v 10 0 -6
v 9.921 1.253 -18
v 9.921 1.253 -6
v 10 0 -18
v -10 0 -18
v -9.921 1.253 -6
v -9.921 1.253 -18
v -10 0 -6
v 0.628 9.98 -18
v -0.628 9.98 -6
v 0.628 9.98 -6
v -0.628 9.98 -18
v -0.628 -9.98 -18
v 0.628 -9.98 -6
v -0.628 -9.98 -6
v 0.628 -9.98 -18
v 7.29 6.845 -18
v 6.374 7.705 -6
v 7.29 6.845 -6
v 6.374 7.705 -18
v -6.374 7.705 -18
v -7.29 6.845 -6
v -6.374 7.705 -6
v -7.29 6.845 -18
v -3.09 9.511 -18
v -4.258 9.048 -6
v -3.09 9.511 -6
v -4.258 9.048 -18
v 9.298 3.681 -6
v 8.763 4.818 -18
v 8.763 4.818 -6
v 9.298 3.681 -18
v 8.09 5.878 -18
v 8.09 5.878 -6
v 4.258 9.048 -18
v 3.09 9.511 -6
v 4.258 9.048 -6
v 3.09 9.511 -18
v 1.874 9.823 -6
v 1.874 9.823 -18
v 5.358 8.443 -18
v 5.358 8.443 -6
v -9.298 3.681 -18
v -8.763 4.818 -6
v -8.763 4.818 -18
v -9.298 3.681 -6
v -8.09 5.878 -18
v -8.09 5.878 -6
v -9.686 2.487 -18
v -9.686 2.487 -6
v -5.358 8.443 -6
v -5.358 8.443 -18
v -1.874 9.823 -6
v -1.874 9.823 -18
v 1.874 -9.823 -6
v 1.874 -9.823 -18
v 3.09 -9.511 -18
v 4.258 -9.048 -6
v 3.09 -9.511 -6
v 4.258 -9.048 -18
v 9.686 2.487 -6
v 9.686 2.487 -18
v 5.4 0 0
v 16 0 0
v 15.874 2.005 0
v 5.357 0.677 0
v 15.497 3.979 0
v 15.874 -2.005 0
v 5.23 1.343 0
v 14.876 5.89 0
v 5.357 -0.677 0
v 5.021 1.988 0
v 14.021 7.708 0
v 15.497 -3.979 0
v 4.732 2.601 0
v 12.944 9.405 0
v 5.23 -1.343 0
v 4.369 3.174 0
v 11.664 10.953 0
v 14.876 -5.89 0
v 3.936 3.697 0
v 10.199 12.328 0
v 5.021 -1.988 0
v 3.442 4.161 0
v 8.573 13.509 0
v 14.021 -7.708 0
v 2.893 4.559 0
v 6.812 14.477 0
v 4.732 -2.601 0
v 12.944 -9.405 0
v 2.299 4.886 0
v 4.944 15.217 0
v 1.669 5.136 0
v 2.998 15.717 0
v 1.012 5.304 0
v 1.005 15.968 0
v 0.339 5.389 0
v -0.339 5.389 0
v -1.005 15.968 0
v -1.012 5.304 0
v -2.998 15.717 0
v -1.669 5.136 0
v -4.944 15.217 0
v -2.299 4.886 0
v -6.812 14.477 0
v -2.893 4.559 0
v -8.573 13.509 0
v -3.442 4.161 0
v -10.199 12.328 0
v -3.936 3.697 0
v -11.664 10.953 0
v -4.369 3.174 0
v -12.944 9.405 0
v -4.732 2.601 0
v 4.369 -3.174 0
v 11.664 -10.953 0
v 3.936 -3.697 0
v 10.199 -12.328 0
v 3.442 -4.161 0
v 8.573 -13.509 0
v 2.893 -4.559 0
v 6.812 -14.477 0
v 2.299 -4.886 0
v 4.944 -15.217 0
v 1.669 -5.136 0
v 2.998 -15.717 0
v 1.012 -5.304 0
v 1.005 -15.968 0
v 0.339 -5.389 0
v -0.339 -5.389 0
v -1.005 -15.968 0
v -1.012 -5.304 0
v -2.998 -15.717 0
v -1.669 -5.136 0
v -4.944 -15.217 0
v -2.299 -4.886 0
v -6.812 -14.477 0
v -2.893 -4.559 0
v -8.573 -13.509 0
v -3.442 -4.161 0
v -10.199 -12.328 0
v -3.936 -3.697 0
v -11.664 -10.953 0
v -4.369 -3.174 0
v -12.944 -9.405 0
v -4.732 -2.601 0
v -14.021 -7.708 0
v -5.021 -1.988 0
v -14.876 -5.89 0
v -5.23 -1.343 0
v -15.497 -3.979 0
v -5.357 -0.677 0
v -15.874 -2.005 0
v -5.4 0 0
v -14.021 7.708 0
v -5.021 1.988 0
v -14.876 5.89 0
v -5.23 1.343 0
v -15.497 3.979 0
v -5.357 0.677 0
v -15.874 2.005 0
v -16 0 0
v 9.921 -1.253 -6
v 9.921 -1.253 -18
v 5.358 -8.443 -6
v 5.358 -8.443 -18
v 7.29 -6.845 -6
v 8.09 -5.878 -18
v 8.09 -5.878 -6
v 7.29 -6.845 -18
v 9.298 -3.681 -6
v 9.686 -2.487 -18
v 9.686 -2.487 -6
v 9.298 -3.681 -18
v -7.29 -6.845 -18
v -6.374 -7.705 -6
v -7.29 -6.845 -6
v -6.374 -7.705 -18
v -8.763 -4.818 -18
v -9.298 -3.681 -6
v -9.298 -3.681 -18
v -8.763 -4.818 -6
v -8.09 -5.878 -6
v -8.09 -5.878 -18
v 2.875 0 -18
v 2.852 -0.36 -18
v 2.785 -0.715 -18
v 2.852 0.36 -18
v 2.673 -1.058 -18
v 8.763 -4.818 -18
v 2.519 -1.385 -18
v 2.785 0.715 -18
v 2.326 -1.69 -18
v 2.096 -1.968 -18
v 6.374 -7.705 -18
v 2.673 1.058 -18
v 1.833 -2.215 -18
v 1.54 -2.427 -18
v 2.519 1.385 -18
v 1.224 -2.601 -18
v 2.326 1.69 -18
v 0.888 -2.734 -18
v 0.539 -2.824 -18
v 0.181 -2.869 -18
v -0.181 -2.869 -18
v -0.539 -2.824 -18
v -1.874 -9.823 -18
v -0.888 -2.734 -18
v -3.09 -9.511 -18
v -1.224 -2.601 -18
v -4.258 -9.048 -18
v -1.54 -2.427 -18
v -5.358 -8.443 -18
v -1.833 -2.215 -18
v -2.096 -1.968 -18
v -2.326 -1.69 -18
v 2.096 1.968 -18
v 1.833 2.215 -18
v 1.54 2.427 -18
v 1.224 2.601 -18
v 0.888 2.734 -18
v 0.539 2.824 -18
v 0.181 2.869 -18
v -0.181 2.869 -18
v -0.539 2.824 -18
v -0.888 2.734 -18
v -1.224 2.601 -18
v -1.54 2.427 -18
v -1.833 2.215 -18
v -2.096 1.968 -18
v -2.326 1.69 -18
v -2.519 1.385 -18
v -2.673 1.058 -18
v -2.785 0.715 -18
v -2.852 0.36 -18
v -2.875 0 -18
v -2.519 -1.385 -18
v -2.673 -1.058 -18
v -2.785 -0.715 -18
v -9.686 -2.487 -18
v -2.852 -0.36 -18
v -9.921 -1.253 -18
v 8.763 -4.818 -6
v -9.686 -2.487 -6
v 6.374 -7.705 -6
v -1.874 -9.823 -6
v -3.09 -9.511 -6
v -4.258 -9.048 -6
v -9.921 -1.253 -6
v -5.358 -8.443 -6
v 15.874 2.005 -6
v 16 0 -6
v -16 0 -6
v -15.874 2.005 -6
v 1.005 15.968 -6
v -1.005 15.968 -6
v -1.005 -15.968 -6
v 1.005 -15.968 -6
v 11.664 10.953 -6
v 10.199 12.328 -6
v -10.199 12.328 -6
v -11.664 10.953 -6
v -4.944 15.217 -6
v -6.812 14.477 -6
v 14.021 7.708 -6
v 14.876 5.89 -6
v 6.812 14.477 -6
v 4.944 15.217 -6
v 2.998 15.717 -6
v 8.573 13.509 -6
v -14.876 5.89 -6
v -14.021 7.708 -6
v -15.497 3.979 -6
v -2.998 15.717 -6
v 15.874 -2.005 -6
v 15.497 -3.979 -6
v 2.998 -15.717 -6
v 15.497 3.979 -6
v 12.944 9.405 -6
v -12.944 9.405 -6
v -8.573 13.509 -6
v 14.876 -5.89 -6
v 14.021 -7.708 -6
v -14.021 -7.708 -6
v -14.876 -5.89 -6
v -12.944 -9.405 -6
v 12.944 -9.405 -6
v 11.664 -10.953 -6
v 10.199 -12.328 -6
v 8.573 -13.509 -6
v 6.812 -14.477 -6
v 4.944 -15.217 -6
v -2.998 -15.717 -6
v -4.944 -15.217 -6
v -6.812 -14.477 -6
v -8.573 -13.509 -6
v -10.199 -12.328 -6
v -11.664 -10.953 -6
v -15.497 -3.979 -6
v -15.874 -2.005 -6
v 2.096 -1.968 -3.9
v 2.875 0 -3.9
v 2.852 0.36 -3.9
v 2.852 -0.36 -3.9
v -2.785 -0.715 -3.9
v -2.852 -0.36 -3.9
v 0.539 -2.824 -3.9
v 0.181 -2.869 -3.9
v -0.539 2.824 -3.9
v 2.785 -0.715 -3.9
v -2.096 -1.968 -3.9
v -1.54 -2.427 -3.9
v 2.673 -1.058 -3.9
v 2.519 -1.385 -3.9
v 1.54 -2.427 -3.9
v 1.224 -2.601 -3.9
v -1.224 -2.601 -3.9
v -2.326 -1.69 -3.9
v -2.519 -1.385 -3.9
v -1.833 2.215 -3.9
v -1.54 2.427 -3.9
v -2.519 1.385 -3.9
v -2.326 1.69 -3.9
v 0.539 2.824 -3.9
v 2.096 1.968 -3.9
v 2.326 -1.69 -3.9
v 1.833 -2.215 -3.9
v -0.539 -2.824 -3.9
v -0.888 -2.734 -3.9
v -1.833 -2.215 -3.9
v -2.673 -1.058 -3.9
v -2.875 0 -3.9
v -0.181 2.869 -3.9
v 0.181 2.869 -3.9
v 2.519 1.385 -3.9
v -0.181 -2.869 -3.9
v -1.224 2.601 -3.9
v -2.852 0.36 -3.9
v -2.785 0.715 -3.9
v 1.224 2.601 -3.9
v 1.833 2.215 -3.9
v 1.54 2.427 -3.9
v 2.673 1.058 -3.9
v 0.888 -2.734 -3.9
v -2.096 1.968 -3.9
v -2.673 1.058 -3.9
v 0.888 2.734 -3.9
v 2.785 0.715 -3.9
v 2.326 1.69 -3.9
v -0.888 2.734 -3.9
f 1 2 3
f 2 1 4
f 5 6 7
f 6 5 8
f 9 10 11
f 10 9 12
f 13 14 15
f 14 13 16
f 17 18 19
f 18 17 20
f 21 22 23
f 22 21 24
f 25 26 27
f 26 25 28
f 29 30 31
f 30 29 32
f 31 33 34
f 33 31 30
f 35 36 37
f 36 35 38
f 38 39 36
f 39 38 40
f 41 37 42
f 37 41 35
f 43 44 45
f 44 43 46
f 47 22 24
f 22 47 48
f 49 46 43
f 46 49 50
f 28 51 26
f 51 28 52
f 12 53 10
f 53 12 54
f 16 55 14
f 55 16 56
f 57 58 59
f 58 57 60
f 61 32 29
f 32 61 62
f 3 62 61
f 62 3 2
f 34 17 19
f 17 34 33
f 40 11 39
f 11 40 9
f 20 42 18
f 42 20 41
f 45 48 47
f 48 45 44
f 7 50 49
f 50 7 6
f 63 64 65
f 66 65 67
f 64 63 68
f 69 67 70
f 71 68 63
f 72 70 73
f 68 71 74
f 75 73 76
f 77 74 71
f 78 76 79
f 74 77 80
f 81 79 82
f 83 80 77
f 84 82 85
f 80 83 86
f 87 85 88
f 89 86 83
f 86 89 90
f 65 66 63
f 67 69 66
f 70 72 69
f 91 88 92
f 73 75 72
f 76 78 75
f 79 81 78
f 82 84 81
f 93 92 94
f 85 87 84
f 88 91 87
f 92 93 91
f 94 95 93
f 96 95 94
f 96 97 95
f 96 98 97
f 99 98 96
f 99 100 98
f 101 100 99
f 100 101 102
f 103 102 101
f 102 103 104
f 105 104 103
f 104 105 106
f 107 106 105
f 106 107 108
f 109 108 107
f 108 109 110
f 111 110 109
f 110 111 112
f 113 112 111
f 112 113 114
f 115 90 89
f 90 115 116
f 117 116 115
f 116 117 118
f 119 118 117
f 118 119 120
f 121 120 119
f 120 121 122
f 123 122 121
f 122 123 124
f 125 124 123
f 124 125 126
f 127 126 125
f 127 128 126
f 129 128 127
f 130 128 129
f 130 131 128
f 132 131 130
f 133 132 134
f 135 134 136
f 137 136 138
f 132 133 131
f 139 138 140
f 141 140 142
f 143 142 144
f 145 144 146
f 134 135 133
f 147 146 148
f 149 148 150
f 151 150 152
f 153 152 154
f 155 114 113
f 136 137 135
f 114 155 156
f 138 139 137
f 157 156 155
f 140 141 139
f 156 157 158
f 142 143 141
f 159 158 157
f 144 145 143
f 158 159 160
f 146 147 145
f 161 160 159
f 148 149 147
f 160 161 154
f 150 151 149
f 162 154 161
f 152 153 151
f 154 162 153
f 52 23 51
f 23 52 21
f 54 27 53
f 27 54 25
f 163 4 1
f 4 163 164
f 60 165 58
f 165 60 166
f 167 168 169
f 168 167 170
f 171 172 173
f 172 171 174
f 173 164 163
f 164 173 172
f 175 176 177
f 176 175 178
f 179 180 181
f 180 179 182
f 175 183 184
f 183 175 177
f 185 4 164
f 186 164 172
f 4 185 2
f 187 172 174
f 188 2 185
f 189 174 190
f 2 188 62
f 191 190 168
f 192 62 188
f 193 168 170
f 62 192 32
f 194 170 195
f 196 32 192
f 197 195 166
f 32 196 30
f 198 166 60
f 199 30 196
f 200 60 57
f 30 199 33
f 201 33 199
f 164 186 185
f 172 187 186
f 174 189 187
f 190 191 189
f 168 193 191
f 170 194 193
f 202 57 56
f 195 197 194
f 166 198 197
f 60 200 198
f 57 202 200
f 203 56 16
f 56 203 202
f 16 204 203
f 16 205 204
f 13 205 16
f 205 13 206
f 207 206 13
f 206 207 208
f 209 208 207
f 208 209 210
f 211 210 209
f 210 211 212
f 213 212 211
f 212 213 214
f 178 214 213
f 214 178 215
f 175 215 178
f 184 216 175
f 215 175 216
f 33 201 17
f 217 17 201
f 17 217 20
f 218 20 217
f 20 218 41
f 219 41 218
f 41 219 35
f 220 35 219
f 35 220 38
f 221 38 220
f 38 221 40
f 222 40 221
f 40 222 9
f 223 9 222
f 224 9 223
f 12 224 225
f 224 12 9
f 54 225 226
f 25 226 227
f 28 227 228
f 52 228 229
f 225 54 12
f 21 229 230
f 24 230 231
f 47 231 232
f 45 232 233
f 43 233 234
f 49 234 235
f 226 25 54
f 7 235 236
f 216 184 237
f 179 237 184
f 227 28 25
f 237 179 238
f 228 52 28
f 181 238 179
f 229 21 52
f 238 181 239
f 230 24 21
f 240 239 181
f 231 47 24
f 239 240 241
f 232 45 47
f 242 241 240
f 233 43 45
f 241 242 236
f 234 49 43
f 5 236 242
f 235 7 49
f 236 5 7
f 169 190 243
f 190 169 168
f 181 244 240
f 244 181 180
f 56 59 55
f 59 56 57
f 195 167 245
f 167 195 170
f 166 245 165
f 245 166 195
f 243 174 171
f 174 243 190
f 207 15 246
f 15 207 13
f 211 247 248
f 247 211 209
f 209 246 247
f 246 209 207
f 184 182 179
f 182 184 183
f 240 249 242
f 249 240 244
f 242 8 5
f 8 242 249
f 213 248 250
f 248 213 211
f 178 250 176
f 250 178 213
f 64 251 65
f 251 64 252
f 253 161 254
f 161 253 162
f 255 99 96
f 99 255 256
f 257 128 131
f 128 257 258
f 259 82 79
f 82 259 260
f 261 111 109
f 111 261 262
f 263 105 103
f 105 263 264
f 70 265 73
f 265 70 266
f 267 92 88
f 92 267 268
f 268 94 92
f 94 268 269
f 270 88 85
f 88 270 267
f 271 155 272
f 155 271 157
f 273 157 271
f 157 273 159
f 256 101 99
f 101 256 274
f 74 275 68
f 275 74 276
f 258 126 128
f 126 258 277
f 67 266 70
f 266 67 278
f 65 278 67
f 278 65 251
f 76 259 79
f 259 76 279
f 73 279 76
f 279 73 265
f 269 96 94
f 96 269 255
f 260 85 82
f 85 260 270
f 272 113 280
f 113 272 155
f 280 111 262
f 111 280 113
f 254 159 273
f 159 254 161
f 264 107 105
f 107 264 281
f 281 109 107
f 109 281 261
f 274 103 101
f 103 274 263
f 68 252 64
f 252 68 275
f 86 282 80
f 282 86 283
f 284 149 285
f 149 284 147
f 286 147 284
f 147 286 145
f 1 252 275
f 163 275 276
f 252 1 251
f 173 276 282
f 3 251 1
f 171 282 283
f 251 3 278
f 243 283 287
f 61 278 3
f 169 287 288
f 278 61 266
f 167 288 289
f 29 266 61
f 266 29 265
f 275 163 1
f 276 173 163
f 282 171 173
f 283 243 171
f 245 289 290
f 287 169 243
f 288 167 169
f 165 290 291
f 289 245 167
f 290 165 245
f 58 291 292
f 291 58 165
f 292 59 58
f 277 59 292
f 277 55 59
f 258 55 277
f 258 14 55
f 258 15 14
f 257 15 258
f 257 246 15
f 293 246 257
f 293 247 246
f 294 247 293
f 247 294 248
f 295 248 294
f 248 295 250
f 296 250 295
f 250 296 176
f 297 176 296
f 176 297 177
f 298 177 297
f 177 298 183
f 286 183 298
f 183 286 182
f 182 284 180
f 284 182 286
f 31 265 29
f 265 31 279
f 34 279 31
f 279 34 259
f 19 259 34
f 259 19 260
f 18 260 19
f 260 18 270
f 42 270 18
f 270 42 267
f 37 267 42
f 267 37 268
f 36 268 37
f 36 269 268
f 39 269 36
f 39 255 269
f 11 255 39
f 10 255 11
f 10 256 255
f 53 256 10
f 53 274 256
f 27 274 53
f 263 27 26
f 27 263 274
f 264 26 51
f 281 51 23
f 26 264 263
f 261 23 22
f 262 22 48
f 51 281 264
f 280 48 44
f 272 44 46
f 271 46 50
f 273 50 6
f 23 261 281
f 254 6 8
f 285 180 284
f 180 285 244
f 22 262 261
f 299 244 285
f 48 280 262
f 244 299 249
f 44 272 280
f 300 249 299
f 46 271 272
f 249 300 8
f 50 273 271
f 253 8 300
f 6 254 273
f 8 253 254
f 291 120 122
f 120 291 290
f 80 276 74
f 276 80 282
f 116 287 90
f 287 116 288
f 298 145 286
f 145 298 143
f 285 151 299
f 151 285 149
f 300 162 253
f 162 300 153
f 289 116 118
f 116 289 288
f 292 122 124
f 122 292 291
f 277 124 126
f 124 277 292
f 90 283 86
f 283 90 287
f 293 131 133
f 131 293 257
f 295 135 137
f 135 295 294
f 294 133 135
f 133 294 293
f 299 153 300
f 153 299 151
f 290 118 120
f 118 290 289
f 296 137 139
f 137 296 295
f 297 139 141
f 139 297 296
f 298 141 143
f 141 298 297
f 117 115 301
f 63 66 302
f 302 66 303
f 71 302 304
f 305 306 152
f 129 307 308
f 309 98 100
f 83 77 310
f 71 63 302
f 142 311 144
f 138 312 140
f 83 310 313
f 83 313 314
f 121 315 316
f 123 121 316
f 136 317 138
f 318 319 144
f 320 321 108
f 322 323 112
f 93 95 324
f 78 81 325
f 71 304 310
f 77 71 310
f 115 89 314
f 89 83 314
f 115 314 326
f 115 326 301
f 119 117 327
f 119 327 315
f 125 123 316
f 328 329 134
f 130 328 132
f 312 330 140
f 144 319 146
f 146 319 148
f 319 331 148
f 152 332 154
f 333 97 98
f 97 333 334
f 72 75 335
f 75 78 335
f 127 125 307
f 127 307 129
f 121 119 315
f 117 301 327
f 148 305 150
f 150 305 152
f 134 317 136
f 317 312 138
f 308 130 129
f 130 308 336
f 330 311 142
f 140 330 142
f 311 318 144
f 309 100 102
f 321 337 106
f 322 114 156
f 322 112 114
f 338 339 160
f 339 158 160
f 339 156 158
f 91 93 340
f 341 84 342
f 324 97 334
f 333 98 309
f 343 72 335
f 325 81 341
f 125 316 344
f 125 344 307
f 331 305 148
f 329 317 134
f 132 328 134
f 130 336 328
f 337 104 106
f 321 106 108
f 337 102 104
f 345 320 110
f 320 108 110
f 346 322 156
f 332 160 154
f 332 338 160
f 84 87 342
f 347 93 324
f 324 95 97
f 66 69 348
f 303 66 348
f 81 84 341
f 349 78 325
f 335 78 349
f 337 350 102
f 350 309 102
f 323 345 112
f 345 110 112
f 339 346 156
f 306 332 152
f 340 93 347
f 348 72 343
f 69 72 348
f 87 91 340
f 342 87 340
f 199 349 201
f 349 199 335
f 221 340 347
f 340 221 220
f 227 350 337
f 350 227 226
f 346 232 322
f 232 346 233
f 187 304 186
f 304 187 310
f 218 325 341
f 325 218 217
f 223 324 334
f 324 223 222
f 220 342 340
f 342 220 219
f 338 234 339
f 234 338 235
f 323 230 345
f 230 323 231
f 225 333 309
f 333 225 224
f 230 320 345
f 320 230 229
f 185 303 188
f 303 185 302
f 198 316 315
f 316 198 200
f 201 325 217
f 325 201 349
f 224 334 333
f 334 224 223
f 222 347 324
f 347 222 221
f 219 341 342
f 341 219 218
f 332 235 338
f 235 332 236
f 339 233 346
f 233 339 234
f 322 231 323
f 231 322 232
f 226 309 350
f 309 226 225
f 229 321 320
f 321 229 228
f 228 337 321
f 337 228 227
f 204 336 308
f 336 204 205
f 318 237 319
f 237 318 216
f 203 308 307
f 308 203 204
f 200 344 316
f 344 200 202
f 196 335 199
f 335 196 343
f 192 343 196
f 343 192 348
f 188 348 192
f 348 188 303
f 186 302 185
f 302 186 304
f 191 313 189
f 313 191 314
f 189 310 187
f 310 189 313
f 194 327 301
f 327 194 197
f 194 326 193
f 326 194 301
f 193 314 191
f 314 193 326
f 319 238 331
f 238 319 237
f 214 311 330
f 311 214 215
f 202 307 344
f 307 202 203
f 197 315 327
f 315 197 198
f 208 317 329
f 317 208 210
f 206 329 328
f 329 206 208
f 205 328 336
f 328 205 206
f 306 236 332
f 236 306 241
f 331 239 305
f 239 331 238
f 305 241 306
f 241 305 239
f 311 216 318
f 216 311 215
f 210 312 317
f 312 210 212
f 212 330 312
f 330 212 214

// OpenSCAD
$fn = 50;


difference() {
	union() {
		translate(v = [0, 0, -18.0000000000]) {
			cylinder(h = 18, r = 10.0000000000);
		}
		translate(v = [0, 0, -6.0000000000]) {
			cylinder(h = 6, r = 16.0000000000);
		}
	}
	union() {
		translate(v = [0, 0, 0]) {
			rotate(a = [0, 0, 0]) {
				difference() {
					union() {
						#translate(v = [0, 0, -18.0000000000]) {
							cylinder(h = 18, r = 2.6000000000);
						}
						#translate(v = [0, 0, -3.9000000000]) {
							cylinder(h = 3.9000000000, r1 = 2.8750000000, r2 = 5.4000000000);
						}
						#translate(v = [0, 0, -18.0000000000]) {
							cylinder(h = 18, r = 2.8750000000);
						}
						#translate(v = [0, 0, -18.0000000000]) {
							cylinder(h = 18, r = 2.6000000000);
						}
					}
					union();
				}
			}
		}
	}
}
